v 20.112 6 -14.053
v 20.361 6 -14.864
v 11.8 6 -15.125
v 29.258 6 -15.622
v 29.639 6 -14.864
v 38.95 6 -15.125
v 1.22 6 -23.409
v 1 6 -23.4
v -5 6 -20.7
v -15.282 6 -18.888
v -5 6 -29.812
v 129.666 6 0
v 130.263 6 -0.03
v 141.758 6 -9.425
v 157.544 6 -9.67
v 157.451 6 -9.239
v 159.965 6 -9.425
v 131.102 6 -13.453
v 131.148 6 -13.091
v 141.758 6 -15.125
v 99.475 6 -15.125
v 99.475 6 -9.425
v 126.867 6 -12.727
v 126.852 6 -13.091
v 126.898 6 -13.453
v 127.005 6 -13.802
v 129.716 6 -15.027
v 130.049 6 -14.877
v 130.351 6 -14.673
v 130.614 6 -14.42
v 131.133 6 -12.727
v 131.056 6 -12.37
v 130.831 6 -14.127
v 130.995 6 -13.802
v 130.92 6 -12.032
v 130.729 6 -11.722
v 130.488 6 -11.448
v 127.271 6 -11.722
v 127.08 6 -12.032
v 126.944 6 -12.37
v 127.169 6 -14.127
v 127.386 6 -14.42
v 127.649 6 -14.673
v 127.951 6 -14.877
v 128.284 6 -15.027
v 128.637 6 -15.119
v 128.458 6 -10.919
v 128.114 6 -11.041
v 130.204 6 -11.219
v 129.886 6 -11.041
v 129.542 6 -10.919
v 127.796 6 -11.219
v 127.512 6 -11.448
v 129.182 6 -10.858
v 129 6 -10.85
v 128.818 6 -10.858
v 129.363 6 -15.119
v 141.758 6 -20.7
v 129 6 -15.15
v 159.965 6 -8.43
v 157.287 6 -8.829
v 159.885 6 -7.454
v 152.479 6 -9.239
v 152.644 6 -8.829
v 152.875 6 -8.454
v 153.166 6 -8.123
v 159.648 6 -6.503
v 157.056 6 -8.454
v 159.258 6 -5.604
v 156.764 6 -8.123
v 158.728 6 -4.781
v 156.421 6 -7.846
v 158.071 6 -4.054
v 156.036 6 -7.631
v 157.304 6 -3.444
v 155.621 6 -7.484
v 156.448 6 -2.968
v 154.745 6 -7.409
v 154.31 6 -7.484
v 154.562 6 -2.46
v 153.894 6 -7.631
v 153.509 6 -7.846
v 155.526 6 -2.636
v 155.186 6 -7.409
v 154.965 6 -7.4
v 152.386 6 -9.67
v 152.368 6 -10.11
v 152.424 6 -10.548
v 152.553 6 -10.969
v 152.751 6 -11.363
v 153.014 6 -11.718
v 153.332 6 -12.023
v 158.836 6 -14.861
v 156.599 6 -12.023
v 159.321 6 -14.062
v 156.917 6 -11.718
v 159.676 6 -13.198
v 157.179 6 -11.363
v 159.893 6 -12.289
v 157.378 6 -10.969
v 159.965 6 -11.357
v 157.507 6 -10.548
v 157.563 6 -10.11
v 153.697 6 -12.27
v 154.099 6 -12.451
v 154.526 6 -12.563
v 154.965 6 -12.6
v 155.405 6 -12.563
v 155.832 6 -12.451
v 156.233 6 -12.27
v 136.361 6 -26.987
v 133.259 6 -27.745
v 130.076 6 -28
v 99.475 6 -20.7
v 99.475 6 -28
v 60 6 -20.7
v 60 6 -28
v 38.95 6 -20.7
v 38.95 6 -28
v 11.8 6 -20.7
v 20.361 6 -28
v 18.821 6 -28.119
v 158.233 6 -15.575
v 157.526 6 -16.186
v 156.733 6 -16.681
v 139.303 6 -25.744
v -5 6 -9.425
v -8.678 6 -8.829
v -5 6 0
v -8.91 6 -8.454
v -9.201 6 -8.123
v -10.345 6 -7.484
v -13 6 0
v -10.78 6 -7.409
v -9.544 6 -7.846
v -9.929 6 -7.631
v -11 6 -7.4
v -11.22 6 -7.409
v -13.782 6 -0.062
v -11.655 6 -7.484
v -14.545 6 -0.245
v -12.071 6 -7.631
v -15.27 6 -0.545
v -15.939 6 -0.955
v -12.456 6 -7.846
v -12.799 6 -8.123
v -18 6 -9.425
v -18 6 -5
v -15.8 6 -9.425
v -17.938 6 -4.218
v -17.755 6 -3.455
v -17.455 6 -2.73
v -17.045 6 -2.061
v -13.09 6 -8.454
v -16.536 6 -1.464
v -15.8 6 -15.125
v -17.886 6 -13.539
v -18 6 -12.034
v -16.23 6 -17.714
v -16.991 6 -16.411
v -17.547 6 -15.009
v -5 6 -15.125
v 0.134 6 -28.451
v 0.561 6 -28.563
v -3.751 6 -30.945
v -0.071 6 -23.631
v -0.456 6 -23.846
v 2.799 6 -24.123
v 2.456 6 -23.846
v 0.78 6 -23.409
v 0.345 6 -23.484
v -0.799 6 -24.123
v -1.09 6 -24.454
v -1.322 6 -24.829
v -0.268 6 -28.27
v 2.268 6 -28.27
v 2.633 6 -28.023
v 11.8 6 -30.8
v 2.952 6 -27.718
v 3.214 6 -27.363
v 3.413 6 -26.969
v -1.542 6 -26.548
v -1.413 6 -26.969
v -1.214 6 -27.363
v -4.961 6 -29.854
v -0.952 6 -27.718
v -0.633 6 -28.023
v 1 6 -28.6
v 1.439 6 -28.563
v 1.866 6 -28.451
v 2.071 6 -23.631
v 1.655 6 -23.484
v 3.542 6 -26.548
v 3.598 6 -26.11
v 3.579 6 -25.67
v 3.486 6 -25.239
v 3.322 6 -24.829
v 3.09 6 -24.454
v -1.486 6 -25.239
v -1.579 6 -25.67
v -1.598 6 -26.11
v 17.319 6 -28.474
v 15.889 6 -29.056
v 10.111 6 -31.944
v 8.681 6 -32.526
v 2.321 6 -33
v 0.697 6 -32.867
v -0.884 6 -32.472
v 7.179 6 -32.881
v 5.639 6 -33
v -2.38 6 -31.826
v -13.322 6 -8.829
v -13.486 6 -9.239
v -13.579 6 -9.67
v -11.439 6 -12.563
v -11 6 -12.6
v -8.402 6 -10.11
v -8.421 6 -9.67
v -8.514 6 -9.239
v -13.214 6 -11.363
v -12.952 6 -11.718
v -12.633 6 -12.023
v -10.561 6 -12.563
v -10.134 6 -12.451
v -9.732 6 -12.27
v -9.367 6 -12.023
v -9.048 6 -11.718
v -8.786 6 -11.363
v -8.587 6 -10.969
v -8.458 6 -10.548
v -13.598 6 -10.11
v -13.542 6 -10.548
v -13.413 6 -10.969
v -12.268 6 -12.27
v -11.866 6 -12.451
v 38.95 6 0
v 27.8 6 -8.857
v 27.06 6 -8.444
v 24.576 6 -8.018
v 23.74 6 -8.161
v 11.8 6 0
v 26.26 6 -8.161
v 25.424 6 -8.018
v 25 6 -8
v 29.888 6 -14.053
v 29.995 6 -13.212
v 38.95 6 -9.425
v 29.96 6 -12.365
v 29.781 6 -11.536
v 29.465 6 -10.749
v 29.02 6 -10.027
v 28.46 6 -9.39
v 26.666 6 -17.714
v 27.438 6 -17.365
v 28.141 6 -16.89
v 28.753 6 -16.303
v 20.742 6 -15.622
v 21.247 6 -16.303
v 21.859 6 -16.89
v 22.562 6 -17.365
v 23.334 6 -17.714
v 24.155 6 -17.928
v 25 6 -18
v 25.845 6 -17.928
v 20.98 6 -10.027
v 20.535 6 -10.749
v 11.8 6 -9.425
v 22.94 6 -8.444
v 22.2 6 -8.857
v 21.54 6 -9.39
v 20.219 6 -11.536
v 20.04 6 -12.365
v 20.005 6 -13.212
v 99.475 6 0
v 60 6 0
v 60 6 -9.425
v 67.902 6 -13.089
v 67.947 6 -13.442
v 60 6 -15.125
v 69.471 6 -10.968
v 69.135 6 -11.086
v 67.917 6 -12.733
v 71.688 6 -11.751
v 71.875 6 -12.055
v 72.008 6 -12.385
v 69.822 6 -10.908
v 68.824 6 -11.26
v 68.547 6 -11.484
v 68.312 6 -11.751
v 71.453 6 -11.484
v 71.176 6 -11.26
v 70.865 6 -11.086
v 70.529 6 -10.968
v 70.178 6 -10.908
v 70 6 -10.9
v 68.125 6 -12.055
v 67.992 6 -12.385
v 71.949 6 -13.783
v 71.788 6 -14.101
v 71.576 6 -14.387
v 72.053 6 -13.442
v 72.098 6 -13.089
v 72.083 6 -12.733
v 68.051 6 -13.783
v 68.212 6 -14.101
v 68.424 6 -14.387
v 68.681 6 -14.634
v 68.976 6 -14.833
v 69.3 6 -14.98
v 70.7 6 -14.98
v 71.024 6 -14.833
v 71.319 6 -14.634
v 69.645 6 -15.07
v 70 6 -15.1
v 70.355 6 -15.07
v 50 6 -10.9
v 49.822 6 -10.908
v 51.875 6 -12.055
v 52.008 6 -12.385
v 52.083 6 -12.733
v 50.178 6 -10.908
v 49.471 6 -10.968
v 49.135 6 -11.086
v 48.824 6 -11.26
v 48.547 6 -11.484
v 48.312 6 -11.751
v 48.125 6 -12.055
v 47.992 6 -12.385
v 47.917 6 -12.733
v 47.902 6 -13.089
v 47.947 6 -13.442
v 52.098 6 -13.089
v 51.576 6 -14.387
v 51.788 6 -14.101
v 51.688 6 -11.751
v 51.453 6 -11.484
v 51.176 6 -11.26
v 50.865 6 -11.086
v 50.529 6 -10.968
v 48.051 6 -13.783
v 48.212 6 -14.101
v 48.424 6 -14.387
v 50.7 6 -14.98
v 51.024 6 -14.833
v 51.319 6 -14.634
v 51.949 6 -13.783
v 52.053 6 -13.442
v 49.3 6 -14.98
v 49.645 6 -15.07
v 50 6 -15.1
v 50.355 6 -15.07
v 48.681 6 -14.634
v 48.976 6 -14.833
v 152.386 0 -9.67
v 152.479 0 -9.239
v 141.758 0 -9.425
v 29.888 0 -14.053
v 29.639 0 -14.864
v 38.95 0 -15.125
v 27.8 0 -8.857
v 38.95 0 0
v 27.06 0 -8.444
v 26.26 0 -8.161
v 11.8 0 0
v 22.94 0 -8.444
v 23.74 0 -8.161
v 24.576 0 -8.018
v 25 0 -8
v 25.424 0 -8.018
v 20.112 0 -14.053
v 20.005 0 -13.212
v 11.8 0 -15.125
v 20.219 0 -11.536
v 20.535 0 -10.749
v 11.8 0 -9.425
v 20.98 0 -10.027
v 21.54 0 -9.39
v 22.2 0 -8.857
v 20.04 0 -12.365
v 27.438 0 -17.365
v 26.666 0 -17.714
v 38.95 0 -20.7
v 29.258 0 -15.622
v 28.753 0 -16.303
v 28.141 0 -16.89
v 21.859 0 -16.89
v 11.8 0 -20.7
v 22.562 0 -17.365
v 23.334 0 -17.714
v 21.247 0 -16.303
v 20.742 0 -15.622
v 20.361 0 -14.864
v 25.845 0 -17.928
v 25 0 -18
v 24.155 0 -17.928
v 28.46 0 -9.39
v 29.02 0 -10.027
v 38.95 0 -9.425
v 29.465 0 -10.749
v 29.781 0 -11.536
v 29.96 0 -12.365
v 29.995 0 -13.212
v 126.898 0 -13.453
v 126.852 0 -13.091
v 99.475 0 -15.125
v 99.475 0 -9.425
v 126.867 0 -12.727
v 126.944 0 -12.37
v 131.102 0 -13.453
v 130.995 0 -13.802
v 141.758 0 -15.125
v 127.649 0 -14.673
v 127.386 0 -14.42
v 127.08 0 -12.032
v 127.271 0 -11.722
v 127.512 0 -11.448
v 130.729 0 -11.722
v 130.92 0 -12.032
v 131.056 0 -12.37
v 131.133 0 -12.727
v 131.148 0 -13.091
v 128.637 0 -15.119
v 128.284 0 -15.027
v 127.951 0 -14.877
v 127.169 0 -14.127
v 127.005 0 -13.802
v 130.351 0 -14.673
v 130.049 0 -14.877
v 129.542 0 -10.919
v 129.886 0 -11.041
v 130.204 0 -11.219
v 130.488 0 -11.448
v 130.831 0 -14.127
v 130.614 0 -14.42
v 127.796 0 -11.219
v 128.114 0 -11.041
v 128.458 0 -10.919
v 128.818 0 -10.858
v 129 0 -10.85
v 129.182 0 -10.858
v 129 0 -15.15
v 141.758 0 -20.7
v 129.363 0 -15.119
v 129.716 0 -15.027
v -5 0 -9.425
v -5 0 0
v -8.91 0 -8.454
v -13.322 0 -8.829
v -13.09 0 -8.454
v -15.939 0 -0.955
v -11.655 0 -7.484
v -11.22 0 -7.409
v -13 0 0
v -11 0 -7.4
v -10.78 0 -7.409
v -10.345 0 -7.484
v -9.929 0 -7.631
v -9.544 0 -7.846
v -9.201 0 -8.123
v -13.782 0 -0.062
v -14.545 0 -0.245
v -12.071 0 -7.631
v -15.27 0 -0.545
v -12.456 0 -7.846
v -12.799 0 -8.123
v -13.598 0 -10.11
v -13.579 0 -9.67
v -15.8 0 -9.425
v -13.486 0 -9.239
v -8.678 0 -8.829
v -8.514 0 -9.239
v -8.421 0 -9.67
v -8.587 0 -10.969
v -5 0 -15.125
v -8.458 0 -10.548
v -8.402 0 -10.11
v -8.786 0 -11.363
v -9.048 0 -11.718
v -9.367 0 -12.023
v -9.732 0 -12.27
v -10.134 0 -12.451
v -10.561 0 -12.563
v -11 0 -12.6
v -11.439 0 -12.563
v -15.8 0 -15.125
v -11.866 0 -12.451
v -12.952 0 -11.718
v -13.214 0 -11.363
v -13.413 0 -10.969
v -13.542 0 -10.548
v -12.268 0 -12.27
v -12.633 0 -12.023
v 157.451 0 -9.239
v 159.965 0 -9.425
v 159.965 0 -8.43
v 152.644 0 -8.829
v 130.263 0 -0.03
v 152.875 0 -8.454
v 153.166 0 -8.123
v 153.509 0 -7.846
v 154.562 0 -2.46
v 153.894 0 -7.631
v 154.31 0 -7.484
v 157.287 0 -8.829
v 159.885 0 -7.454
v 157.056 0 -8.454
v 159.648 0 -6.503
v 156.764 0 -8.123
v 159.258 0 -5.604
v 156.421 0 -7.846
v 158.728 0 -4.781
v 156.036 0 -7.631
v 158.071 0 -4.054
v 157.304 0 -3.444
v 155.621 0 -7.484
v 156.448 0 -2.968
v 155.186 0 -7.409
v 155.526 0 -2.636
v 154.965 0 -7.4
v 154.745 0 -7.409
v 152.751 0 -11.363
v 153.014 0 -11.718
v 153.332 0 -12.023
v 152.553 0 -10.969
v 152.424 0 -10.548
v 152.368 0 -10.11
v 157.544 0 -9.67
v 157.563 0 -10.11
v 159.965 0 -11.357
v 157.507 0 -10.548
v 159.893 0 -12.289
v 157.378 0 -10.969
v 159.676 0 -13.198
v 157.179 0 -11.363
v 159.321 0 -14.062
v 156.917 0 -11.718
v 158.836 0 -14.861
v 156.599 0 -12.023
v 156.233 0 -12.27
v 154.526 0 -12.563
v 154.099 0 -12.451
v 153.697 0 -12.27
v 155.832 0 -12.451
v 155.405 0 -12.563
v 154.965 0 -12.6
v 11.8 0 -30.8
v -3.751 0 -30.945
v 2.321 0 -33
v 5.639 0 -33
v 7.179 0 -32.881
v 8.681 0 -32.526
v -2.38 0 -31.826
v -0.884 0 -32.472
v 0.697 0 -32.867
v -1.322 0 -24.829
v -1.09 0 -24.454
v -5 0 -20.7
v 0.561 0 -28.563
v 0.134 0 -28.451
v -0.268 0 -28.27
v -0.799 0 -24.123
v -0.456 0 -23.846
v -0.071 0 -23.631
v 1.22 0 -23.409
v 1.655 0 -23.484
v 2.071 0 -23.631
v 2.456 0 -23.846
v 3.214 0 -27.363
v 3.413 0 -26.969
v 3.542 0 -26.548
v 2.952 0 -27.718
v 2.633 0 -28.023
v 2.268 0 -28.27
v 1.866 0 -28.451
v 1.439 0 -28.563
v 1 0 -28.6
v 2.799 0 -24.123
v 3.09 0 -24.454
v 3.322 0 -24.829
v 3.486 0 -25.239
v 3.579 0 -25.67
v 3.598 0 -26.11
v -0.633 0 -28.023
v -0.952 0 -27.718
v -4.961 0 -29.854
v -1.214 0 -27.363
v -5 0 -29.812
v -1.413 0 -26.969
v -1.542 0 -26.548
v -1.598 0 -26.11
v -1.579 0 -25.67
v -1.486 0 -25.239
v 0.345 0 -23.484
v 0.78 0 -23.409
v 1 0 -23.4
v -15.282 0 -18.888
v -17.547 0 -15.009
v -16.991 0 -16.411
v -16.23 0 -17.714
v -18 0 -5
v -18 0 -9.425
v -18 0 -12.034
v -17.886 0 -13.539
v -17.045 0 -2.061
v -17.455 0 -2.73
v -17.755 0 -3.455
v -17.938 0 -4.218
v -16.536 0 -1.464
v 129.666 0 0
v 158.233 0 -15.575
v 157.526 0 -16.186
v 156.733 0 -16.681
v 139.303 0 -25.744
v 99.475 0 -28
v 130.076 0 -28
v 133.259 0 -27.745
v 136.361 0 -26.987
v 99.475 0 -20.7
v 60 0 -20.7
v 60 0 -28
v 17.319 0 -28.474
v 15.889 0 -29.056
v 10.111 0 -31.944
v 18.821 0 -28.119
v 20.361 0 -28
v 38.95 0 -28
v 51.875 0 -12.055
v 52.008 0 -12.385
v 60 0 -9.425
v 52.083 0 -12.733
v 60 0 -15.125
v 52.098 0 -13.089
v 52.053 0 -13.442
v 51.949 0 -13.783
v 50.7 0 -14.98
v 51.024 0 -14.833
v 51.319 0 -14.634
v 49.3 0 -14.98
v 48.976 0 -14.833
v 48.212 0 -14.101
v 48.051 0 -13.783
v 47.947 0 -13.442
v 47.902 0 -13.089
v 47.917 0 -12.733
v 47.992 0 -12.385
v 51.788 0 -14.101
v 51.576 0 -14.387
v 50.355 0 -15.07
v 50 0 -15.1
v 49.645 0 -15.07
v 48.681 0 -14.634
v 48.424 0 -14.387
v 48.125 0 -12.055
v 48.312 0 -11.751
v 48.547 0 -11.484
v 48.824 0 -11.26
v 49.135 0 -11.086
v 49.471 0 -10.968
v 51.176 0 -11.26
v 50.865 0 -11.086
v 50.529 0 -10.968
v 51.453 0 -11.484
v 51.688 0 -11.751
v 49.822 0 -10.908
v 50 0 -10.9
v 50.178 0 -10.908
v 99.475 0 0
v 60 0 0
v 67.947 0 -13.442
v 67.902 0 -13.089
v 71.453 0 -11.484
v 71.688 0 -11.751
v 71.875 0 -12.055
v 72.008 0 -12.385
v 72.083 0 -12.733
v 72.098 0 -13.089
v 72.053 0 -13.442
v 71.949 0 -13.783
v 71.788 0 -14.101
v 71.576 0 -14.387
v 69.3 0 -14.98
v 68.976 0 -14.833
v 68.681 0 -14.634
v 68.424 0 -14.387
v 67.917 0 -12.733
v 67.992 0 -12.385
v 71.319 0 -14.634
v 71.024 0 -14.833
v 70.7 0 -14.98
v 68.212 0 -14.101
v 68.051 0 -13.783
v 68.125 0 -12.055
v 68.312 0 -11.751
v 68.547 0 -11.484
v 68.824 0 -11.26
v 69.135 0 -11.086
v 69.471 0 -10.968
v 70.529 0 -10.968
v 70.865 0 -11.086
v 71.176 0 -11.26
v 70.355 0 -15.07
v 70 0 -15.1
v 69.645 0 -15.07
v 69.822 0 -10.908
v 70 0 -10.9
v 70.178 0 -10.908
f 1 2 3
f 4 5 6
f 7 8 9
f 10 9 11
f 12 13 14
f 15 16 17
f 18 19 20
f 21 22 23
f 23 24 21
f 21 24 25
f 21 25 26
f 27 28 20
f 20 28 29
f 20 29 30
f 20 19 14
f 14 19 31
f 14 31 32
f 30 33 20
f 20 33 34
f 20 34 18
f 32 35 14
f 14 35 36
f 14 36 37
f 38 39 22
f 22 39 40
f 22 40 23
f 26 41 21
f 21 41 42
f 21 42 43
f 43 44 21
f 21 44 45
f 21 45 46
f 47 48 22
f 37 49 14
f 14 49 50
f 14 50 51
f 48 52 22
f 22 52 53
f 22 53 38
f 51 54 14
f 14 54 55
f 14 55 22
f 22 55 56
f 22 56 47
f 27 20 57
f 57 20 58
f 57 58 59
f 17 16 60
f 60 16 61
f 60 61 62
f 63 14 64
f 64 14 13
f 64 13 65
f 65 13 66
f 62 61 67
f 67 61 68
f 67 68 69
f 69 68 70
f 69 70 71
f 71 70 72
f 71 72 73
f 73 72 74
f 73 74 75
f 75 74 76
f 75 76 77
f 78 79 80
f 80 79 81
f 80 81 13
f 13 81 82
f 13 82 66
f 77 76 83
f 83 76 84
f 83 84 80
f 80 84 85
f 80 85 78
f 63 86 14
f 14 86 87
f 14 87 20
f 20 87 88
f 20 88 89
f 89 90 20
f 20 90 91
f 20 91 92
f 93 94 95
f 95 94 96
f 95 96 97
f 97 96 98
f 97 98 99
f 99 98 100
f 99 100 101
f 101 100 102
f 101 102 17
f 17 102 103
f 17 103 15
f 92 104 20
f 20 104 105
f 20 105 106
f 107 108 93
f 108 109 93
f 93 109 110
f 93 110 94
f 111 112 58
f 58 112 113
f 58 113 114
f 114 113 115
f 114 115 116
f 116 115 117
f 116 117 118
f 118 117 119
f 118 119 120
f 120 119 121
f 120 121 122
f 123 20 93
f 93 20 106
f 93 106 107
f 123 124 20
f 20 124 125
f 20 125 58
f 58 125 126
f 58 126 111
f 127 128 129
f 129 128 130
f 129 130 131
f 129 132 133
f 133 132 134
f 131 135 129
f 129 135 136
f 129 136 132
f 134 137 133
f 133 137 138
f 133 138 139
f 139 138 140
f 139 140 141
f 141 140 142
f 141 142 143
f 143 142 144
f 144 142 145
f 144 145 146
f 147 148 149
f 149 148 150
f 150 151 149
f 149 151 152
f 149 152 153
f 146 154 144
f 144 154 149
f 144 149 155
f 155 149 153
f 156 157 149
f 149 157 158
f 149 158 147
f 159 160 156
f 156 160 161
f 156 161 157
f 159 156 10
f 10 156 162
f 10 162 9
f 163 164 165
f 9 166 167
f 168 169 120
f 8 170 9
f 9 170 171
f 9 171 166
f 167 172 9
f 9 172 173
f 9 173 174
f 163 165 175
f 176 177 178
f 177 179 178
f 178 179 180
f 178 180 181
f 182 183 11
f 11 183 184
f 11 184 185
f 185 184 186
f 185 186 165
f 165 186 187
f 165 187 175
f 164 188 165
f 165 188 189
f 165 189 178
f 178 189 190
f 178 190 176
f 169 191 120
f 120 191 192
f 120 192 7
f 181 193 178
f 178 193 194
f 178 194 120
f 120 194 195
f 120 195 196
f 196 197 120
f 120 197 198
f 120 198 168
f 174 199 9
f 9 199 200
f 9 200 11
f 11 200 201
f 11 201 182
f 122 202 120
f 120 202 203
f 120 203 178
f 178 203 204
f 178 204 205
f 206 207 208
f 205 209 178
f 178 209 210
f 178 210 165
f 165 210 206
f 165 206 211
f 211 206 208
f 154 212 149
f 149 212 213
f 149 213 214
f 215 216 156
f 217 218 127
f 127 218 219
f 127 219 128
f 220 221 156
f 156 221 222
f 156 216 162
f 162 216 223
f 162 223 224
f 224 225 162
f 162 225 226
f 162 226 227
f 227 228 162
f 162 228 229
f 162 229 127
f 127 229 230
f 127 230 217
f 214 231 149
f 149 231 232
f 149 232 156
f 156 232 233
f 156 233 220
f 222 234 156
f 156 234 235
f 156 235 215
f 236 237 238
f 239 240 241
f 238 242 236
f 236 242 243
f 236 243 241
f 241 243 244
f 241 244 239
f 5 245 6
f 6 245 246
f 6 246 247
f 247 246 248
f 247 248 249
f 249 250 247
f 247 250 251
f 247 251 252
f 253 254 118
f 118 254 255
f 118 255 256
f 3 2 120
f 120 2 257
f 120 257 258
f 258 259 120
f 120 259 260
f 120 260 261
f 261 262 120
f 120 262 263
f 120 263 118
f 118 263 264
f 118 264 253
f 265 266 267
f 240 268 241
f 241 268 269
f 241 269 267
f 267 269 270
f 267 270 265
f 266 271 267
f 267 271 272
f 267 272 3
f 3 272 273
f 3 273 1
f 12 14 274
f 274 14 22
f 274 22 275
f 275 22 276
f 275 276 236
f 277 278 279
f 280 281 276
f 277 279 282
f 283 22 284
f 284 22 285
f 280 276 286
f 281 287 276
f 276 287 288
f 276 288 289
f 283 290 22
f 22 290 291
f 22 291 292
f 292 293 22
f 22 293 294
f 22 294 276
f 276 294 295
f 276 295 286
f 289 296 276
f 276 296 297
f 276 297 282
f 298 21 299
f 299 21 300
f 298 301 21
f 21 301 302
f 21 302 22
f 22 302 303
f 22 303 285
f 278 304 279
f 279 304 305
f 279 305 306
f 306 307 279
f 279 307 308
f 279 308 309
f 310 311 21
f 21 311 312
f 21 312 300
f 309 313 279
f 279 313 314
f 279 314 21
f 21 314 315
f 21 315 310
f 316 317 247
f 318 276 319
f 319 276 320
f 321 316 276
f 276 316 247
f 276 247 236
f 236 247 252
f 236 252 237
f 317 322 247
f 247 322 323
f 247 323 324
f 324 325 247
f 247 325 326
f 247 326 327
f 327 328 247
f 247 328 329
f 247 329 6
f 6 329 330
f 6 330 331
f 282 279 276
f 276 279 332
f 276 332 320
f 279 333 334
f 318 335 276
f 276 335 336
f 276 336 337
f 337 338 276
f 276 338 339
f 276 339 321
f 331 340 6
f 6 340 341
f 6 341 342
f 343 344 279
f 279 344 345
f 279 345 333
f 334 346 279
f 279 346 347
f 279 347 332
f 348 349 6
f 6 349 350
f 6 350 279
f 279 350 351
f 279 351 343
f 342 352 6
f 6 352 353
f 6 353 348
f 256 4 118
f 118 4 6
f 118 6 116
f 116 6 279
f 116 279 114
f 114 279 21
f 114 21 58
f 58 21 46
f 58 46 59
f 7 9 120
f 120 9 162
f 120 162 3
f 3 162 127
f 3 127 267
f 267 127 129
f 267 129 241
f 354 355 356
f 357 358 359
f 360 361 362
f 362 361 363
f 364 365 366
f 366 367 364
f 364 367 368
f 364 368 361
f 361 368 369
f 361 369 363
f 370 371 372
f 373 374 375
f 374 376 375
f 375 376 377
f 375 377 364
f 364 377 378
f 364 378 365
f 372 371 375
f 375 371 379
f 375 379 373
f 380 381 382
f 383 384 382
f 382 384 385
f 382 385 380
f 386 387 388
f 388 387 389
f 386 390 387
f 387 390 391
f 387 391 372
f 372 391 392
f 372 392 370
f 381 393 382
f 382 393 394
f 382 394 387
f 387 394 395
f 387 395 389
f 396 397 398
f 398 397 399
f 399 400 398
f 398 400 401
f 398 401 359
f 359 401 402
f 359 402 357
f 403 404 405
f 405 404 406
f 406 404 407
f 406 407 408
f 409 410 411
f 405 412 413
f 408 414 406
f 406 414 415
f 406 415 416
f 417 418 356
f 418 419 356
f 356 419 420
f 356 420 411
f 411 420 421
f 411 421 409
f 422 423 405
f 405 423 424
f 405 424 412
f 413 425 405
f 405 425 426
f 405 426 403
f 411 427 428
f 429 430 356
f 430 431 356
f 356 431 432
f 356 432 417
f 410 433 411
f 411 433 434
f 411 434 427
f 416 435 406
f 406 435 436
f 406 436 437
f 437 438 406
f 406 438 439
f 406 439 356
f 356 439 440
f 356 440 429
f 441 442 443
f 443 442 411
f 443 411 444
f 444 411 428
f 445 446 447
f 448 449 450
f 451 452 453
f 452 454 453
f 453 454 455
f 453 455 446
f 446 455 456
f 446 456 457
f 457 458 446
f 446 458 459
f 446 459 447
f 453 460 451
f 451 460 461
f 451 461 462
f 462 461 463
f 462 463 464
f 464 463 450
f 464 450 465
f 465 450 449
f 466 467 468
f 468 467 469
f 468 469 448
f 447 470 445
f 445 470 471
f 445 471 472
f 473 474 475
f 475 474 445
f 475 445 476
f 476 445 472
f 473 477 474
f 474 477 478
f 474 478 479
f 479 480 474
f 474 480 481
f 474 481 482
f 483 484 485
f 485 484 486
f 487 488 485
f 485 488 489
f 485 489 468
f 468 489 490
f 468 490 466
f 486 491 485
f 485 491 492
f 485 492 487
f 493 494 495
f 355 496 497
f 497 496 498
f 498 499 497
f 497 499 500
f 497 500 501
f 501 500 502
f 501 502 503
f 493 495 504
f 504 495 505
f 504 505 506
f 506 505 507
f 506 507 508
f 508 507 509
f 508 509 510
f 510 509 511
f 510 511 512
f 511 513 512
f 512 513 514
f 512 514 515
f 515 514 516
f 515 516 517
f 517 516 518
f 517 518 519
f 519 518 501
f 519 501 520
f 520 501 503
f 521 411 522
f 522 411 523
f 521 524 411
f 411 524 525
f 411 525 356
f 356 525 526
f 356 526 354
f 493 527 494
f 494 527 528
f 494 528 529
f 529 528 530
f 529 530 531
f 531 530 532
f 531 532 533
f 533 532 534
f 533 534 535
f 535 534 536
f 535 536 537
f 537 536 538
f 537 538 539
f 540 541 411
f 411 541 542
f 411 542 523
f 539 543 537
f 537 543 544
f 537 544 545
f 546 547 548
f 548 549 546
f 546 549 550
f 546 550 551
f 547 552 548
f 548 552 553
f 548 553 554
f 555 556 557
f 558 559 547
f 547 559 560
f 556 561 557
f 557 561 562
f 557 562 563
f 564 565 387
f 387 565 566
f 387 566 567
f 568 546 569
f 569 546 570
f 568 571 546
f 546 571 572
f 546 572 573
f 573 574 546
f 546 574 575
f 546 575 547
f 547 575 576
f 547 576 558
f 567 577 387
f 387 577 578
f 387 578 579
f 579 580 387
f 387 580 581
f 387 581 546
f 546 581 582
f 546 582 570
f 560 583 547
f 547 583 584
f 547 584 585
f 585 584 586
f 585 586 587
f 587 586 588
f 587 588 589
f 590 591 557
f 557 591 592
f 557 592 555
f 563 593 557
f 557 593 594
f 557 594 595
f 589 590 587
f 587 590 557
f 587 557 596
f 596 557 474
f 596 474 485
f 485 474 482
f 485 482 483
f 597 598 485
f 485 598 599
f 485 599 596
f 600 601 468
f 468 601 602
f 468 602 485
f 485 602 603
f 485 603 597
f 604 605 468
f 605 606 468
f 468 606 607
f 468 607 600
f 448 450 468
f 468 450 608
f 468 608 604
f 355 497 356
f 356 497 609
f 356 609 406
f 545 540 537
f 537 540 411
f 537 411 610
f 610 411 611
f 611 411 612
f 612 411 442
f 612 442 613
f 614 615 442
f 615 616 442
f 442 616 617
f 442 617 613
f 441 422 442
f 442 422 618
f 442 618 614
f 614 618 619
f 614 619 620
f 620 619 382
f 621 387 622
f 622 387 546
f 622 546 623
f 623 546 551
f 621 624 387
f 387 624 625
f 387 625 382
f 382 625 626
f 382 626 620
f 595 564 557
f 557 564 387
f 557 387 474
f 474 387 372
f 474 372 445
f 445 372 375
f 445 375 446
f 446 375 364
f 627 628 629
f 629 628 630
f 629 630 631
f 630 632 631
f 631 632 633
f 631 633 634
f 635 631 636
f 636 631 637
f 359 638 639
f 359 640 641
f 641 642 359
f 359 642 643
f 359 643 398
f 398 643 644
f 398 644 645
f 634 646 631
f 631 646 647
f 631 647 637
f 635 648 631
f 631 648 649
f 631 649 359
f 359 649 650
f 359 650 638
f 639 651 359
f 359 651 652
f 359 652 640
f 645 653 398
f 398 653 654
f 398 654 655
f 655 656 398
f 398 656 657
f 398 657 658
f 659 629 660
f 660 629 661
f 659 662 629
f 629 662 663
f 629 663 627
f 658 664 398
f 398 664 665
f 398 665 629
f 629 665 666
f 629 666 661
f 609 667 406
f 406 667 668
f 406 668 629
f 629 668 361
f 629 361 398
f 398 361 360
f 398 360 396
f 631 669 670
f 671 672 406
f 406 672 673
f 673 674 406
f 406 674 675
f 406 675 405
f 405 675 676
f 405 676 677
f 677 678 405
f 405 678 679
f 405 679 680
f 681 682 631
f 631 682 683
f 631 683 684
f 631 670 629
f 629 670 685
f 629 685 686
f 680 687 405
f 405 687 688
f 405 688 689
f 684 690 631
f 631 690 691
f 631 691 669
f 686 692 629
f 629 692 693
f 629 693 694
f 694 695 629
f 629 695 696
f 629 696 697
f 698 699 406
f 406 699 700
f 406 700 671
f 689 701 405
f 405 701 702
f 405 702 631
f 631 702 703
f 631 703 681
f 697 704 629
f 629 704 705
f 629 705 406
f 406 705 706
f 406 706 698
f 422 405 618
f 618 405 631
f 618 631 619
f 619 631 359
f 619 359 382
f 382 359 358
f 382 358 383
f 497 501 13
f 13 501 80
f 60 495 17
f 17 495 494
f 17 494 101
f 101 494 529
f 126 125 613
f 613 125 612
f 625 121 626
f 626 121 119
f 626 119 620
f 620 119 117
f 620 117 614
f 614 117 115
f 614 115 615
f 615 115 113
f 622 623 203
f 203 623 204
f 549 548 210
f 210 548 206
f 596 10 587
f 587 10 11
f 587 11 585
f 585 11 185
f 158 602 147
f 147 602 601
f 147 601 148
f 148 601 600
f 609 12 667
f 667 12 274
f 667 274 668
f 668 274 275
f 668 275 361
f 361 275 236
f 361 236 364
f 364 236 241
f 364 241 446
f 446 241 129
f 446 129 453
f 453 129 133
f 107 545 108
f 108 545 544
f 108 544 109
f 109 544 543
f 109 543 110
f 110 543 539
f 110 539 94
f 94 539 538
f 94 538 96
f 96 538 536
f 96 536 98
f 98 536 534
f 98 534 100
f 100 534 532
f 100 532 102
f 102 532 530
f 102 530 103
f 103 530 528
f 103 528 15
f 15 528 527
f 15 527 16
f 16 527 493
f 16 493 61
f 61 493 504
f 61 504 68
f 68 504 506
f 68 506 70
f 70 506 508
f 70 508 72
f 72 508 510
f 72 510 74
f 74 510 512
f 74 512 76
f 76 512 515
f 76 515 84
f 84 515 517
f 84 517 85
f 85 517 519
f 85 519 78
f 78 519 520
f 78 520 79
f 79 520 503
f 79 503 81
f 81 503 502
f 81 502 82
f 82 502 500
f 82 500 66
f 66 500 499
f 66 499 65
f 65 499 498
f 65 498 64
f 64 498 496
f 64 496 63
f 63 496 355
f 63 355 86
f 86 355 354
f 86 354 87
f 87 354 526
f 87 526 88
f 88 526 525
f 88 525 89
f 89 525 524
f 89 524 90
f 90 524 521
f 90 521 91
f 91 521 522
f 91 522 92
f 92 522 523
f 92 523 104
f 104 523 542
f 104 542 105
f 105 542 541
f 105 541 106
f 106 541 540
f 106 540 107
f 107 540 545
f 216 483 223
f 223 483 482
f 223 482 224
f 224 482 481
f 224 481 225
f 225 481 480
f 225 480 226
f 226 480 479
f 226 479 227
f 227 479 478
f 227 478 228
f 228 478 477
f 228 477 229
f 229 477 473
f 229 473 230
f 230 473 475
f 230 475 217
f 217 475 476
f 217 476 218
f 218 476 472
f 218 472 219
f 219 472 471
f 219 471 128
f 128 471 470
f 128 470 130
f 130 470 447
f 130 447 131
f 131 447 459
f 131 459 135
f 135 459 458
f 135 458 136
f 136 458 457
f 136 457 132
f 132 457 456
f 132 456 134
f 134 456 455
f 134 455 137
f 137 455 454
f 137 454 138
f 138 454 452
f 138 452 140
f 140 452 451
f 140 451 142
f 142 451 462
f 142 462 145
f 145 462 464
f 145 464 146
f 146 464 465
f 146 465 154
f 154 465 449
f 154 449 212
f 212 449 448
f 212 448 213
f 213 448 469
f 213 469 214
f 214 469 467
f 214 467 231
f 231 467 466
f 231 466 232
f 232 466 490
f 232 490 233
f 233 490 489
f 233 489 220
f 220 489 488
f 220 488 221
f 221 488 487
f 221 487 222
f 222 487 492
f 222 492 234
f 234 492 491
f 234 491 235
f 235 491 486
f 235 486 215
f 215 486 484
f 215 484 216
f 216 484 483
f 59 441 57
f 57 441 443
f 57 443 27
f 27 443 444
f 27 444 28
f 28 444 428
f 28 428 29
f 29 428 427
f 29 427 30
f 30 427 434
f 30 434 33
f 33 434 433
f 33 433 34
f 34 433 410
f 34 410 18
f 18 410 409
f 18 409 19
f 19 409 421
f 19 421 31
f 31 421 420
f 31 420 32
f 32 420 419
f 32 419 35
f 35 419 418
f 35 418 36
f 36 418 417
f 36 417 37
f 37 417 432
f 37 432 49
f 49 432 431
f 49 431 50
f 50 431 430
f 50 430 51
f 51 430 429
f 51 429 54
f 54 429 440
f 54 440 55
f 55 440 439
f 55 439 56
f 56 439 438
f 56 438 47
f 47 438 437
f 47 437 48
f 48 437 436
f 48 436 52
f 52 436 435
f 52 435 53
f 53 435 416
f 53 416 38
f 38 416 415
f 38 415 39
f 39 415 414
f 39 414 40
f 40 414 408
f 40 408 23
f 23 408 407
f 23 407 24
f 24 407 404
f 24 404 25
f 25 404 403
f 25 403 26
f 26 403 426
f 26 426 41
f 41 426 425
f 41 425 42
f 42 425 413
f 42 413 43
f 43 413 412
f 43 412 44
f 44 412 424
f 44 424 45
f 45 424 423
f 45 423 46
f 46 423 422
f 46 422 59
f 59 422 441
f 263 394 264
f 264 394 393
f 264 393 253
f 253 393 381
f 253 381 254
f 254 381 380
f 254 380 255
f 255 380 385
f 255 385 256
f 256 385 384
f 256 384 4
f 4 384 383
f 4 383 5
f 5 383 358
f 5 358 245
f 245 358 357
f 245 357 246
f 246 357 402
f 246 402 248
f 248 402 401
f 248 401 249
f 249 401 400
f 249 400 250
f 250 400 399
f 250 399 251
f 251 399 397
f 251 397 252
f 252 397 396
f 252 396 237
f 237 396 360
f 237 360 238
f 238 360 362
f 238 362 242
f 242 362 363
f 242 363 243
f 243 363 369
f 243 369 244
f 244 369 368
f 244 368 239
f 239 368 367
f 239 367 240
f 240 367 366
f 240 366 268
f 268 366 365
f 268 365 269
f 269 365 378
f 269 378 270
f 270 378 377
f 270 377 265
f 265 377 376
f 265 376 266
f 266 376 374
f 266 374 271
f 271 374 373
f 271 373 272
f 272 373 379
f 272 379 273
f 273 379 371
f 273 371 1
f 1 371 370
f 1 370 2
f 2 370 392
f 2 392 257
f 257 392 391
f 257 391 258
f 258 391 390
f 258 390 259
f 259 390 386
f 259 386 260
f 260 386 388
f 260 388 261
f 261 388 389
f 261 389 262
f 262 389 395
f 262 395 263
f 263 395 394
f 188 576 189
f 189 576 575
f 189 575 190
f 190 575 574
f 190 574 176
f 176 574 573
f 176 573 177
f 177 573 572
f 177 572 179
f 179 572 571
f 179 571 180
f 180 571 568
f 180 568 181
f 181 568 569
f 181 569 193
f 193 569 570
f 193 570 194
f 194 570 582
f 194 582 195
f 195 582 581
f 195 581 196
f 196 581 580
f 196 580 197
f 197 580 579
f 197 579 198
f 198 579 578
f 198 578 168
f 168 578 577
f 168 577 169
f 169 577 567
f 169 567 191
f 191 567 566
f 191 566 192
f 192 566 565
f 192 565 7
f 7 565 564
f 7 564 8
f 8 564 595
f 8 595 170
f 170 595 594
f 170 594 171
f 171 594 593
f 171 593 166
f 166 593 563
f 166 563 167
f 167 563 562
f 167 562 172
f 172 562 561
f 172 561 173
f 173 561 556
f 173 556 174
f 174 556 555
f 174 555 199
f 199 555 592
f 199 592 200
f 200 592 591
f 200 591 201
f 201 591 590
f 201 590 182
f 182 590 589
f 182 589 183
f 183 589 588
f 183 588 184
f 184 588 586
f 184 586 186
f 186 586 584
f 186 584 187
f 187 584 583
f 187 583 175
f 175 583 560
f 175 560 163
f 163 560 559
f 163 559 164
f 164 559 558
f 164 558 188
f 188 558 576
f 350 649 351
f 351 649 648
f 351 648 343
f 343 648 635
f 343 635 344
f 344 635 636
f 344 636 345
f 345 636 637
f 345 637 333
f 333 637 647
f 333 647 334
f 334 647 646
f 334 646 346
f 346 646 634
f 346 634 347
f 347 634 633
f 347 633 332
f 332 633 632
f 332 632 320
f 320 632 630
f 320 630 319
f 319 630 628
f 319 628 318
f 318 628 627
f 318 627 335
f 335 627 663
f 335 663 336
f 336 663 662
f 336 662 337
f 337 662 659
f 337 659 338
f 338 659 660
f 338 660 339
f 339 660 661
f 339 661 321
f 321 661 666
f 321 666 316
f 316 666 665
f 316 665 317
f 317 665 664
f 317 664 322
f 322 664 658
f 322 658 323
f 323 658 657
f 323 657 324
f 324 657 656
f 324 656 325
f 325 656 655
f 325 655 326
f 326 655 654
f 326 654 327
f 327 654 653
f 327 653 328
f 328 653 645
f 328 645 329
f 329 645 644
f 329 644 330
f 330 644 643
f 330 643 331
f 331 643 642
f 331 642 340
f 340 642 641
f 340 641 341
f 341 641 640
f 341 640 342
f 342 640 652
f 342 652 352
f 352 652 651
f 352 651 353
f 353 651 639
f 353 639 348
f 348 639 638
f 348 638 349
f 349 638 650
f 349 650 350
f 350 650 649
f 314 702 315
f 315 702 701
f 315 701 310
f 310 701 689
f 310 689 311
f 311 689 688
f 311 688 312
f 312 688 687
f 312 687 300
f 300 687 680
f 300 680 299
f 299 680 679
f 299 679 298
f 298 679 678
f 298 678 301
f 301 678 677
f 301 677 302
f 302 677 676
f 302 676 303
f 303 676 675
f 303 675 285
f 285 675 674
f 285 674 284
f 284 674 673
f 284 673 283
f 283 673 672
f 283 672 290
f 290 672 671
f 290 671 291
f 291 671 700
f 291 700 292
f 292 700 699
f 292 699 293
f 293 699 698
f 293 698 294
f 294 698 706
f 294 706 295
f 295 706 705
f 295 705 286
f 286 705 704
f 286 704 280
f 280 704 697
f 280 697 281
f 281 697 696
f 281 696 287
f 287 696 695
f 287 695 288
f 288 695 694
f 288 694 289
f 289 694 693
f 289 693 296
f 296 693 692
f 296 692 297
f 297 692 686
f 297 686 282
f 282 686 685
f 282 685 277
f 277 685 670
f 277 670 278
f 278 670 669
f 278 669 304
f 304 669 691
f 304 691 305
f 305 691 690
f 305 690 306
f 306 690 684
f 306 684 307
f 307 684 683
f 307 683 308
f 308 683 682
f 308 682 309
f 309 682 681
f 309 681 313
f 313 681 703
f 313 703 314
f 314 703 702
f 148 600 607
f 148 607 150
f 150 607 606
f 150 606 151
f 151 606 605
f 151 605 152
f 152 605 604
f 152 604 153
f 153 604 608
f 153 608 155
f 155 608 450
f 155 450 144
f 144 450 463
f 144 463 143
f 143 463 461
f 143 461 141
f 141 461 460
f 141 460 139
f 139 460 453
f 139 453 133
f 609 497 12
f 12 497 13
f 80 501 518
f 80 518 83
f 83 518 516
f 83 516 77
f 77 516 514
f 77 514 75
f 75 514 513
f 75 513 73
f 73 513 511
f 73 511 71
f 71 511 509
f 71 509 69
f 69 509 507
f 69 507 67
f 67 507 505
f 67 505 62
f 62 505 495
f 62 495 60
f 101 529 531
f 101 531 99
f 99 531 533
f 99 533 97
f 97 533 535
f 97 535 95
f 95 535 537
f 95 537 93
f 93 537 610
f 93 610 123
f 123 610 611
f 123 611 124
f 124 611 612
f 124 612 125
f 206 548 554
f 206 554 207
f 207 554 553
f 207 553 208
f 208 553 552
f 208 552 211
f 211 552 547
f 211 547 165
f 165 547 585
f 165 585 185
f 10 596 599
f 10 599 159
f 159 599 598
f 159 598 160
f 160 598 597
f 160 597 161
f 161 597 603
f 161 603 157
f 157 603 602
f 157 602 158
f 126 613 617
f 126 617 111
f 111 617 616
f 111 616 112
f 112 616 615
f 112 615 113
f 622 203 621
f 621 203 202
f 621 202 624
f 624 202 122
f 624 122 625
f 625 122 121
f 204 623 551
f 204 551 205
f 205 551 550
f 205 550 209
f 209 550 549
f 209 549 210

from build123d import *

# Parameters (mm, degrees)
SKETCH1_R           = 2.6
SKETCH1_R_2         = 2.15
SKETCH1_R_3         = 5
SKETCH1_R_4         = 2.1
BOSS_EXTRUDE1_DEPTH = 6
FILLET1_R           = 5
FILLET2_R           = 6
FILLET3_R           = 10
FILLET4_R           = 20
FILLET5_R           = 10


with BuildPart() as part:
    # Sketch1 → Boss-Extrude1 (new body)
    with BuildSketch(Plane(origin=(0, 0, 0), x_dir=(1, 0, 0), z_dir=(0, 1, 0))):
        Polygon((159.965380006, 15), (134.965380006, 28), (18, 28), (8, 33), (-2, 33), (-18, 16), (-18, 0), (0, 0), (129.965380006, 0), (159.965380006, 3), align=None)
        with Locations(Location((-11, 10, 0), (0, 0, 270))):
            Circle(SKETCH1_R, mode=Mode.SUBTRACT)
        with Locations(Location((129, 13, 0), (0, 0, 270))):
            Circle(SKETCH1_R_2, mode=Mode.SUBTRACT)
        with Locations(Location((25, 13, 0), (0, 0, 270))):
            Circle(SKETCH1_R_3, mode=Mode.SUBTRACT)
        with Locations(Location((154.965380006, 10, 0), (0, 0, 270))):
            Circle(SKETCH1_R, mode=Mode.SUBTRACT)
        with Locations(Location((1, 26, 0), (0, 0, 270))):
            Circle(SKETCH1_R, mode=Mode.SUBTRACT)
        with Locations(Location((50, 13, 0), (0, 0, 270))):
            Circle(SKETCH1_R_4, mode=Mode.SUBTRACT)
        with Locations(Location((70, 13, 0), (0, 0, 270))):
            Circle(SKETCH1_R_4, mode=Mode.SUBTRACT)
    extrude(amount=BOSS_EXTRUDE1_DEPTH)

    # Fillet1
    fillet1_edges = [part.edges().sort_by_distance(p)[0] for p in [
        (-18, 3, 0),
    ]]
    fillet(fillet1_edges, radius=FILLET1_R)

    # Fillet2
    # the kernel refuses this fillet: 6 mm, written as the material it takes off along each edge
    with BuildSketch(Plane(origin=(159.965380006, -9.106803364, -15), x_dir=(0, 0, 1), z_dir=(0, 1, 0))) as fillet2_piece_1:
        with BuildLine():
            CenterArc((FILLET2_R * 0.607120224288, -FILLET2_R), FILLET2_R, 90, 62.525568374)
            Line((-FILLET2_R * 0.280096576946, -FILLET2_R * 0.538647263358), (0, 0))
            Line((0, 0), (FILLET2_R * 0.607120224288, 0))
        make_face()
    extrude(amount=24.213606729, mode=Mode.SUBTRACT)
    with BuildSketch(Plane(origin=(159.965380006, -13.574813432, -3), x_dir=(-0.9950371902099892, 0, 0.0995037190209987), z_dir=(0, 1, 0))) as fillet2_piece_2:
        with BuildLine():
            CenterArc((FILLET2_R * 0.904987562112, -FILLET2_R), FILLET2_R, 90, 84.289406863)
            Line((-FILLET2_R * 0.0900496280979, -FILLET2_R * 0.900496280979), (0, 0))
            Line((0, 0), (FILLET2_R * 0.904987562112, 0))
        make_face()
    extrude(amount=33.149626863, mode=Mode.SUBTRACT)
    with BuildSketch(Plane(origin=(129.965380006, -0.748134317, 0), x_dir=(-1, 0, 0), z_dir=(0, 1, 0))) as fillet2_piece_3:
        with BuildLine():
            CenterArc((FILLET2_R * 0.0498756211209, -FILLET2_R), FILLET2_R, 90, 5.710593137)
            Line((-FILLET2_R * 0.0496280979001, -FILLET2_R * 0.00496280979001), (0, 0))
            Line((0, 0), (FILLET2_R * 0.0498756211209, 0))
        make_face()
    extrude(amount=7.496268634, mode=Mode.SUBTRACT)

    # Fillet3
    fillet3_edges = [part.edges().sort_by_distance(p)[0] for p in [
        (-18, 3, -16),
        (-2, 3, -33),
    ]]
    fillet(fillet3_edges, radius=FILLET3_R)

    # Fillet4
    fillet4_edges = [part.edges().sort_by_distance(p)[0] for p in [
        (134.965380006, 3, -28),
    ]]
    fillet(fillet4_edges, radius=FILLET4_R)

    # Fillet5
    fillet5_edges = [part.edges().sort_by_distance(p)[0] for p in [
        (8, 3, -33),
        (18, 3, -28),
    ]]
    fillet(fillet5_edges, radius=FILLET5_R)


solid = part.part
